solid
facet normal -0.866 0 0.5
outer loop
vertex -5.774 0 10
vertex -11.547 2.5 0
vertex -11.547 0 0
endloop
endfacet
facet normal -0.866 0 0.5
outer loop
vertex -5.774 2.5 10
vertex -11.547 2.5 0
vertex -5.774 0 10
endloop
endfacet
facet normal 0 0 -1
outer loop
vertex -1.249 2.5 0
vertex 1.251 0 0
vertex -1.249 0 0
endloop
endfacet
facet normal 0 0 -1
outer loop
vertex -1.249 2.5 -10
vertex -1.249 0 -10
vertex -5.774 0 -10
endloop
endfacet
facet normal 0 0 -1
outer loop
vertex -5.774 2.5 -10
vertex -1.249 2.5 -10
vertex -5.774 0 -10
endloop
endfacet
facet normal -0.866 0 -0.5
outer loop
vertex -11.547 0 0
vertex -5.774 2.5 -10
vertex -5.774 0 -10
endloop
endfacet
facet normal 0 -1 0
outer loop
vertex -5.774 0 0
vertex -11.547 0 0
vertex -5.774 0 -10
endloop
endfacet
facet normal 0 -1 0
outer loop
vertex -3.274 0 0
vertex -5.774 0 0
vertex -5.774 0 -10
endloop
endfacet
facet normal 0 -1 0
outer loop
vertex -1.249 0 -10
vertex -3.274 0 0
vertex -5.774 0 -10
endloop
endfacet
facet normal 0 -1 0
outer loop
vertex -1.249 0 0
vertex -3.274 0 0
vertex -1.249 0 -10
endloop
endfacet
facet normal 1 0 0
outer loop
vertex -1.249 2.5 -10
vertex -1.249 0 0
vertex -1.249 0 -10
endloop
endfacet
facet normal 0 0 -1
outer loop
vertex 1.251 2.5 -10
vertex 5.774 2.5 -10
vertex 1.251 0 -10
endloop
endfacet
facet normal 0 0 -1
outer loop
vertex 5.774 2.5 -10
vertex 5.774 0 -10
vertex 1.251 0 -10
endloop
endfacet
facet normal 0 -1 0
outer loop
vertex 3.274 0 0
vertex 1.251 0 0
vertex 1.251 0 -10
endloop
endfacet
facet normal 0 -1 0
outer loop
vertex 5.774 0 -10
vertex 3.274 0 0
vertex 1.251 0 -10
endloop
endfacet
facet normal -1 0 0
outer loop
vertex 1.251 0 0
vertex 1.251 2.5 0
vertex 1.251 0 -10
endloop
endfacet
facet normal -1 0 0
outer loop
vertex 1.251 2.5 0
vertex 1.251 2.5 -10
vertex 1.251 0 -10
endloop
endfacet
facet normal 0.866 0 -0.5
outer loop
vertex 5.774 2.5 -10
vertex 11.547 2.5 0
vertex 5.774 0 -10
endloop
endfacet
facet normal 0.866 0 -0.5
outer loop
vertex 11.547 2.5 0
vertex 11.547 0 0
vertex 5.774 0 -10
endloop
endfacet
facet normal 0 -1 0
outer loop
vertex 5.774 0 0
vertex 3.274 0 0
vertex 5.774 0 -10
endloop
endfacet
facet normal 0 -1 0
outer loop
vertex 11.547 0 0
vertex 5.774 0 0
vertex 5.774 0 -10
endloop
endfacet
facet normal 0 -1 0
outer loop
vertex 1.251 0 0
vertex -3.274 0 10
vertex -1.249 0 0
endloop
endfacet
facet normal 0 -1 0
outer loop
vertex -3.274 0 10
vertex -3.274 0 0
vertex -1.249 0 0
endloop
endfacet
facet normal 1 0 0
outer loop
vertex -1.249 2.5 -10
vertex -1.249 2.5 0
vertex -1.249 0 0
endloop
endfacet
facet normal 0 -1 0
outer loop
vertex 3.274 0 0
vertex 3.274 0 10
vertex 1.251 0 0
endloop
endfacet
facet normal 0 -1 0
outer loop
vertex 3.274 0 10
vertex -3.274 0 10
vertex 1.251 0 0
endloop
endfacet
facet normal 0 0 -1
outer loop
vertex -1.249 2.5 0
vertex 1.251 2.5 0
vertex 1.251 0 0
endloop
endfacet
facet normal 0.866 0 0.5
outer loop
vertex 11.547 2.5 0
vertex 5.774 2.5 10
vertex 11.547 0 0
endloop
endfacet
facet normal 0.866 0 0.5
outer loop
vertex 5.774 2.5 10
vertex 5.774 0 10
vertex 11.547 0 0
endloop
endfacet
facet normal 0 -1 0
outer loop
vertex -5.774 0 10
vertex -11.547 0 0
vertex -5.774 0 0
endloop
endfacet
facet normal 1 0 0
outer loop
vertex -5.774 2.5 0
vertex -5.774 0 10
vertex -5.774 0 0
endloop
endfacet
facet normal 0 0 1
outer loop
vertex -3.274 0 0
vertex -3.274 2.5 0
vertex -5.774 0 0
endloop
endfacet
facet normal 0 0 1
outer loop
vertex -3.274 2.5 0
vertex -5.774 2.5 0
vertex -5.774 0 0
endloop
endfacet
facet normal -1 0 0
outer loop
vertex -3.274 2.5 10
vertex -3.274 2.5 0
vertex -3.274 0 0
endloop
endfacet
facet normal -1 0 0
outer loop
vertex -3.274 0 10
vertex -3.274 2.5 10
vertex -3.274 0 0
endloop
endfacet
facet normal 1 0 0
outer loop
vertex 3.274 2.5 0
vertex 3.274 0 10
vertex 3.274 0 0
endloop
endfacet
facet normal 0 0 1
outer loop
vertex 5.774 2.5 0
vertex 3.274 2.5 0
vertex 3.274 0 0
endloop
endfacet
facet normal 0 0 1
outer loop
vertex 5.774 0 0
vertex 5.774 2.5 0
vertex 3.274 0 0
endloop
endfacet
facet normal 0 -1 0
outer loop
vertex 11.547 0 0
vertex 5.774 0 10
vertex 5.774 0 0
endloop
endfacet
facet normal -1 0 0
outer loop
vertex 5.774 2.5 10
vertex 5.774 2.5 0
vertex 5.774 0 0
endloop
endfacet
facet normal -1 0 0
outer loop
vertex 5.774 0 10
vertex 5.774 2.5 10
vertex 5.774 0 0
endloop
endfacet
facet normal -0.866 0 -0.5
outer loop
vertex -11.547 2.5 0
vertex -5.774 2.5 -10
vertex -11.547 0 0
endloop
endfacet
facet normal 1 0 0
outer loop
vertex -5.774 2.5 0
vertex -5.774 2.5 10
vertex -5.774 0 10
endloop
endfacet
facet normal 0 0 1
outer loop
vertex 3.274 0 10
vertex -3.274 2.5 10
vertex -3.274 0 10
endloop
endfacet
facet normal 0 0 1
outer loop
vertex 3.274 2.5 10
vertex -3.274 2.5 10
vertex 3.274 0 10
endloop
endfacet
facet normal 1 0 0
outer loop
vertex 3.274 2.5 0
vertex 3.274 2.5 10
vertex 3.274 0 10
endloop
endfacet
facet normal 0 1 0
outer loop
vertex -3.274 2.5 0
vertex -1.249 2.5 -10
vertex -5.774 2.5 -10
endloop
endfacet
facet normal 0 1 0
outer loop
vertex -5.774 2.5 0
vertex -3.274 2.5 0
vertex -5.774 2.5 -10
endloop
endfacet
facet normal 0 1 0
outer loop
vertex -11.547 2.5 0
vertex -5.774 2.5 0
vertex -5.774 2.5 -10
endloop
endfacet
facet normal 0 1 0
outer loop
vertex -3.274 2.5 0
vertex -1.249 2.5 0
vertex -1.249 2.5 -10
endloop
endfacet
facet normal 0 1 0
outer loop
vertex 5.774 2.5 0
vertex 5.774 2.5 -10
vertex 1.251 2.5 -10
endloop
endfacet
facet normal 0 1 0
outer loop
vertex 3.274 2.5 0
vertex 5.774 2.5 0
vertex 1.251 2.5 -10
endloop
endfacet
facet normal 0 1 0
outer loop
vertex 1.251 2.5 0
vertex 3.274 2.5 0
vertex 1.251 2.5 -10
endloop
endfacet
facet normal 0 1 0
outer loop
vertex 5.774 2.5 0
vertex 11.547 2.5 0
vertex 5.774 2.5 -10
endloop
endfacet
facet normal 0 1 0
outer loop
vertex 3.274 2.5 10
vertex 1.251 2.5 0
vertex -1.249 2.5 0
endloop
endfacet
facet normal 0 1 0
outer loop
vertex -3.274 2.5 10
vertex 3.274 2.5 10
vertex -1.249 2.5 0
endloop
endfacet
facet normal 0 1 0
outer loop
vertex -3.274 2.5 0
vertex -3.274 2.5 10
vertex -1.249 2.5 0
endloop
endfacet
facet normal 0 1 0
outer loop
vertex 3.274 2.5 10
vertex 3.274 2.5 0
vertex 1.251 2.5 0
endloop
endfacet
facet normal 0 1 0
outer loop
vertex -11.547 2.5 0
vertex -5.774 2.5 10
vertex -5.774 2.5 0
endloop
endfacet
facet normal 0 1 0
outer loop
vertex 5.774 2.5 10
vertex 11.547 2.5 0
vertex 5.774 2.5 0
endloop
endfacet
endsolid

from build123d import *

# Parameters (mm, degrees)
BOSS_EXTRUDE1_DEPTH = 2.5
SKETCH5_W           = 2.5
SKETCH5_H           = 2.5
CUT_EXTRUDE3_DEPTH  = 10
SKETCH6_W           = 2.5
SKETCH6_H           = 2.5
CUT_EXTRUDE4_DEPTH  = 10
SKETCH7_W           = 2.5
SKETCH7_H           = 2.5
CUT_EXTRUDE5_DEPTH  = 10


with BuildPart() as part:
    # Sketch1 → Boss-Extrude1 (new body)
    with BuildSketch(Plane(origin=(0, 0, 0), x_dir=(1, 0, 0), z_dir=(0, 1, 0))):
        Polygon((11.547005384, 0), (5.773502692, 10), (-5.773502692, 10), (-11.547005384, 0), (-5.773502692, -10), (5.773502692, -10), align=None)
    extrude(amount=BOSS_EXTRUDE1_DEPTH)

    # Sketch5 → Cut-Extrude3 (cut)
    with BuildSketch(Plane.XY.offset(10)):
        with Locations((-4.523502692, 1.25)):
            Rectangle(SKETCH5_W, SKETCH5_H)
    extrude(amount=-CUT_EXTRUDE3_DEPTH, mode=Mode.SUBTRACT)

    # Sketch6 → Cut-Extrude4 (cut)
    with BuildSketch(Plane.XY.offset(10)):
        with Locations((4.523502692, 1.25)):
            Rectangle(SKETCH6_W, SKETCH6_H)
    extrude(amount=-CUT_EXTRUDE4_DEPTH, mode=Mode.SUBTRACT)

    # Sketch7 → Cut-Extrude5 (cut)
    with BuildSketch(Plane(origin=(0, 0, -10), x_dir=(-1, 0, 0), z_dir=(0, 0, -1))):
        with Locations((-0.001497308, 1.25)):
            Rectangle(SKETCH7_W, SKETCH7_H)
    extrude(amount=-CUT_EXTRUDE5_DEPTH, mode=Mode.SUBTRACT)


solid = part.part
